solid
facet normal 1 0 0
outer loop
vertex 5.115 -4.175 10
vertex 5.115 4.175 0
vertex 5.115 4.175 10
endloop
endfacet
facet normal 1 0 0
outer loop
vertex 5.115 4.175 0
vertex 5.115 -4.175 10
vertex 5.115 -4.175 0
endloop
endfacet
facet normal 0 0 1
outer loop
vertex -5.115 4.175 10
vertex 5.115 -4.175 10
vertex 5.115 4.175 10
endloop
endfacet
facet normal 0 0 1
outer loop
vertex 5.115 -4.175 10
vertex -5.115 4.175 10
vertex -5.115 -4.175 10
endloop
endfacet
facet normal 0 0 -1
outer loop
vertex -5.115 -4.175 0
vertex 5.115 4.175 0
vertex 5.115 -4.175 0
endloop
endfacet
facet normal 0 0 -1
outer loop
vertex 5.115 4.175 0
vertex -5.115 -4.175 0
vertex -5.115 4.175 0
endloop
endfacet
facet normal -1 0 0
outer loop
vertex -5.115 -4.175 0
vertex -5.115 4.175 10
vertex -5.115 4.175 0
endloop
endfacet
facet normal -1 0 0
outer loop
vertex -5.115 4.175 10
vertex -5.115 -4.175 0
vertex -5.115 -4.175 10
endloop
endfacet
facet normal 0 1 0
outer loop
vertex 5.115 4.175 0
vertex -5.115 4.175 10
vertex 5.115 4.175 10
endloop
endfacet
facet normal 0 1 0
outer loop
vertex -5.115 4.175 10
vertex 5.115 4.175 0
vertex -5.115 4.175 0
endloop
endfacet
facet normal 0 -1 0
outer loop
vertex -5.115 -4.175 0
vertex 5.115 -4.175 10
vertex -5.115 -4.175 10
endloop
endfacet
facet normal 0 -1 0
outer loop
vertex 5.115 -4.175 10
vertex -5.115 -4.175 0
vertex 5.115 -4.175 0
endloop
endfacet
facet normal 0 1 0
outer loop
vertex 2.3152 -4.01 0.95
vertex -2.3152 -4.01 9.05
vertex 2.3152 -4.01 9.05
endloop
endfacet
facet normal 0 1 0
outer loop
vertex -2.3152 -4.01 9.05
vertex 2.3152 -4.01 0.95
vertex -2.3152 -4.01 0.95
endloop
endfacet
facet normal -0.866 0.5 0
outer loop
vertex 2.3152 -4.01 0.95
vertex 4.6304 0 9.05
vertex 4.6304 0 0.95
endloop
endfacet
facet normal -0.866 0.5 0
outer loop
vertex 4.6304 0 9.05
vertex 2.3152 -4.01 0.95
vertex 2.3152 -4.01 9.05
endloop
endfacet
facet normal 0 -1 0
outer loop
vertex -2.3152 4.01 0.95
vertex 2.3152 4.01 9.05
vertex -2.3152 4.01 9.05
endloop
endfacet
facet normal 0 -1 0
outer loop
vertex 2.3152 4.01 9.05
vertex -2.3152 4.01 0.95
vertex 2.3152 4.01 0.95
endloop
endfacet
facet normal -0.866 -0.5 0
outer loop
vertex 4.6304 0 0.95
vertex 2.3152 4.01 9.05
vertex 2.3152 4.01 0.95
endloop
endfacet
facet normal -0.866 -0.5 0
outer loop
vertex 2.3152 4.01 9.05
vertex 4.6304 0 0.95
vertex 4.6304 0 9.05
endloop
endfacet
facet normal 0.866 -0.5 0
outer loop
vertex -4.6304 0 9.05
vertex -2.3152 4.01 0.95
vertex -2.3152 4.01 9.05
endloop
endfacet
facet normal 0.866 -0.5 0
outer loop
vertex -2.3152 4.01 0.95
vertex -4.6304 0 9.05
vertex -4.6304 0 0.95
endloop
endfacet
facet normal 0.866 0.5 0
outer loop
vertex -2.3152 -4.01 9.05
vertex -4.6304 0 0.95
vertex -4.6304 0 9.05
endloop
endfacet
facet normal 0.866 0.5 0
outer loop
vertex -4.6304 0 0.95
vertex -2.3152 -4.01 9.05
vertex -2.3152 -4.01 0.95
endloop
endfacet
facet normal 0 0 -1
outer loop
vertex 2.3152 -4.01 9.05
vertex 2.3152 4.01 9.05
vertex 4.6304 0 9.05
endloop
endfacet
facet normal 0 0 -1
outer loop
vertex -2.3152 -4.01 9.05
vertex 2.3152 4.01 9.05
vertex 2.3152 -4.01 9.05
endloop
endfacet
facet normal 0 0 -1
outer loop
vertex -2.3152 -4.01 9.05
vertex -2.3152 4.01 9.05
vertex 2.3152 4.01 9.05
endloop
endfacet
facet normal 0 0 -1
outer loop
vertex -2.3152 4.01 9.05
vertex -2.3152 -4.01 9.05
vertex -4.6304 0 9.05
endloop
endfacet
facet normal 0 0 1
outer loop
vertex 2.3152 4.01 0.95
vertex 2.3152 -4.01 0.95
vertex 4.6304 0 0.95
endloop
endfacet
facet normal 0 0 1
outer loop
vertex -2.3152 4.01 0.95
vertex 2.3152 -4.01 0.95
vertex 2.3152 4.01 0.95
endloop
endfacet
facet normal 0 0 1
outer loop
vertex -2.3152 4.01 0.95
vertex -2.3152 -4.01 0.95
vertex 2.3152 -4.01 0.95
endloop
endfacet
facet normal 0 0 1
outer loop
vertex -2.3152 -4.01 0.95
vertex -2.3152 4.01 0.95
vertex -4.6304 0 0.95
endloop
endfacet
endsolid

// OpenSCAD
// Please help me make a SCAD model for an adaptor for a special nut.
// The nut is 6 sided with a distance between two sides being 7.82mm.
// The adaptor needs to be a rectangle which is 8.35mm x 10.23mm.
// Each dimensional size needs to be a variable at the top of the scad.

// Hex Nut Adapter
// All dimensions in millimeters

// ===== ADAPTER DIMENSIONS =====
adapter_width = 8.35;      // Short side of rectangle
adapter_length = 10.23;    // Long side of rectangle
adapter_height = 10;       // Height/thickness of adapter (adjust as needed)

// ===== NUT DIMENSIONS =====
nut_flat_to_flat = 7.82;   // Distance between parallel sides of hexagon
nut_depth = 8;             // Depth of hex hole (adjust as needed)

// ===== TOLERANCE =====
tolerance = 0.2;           // Extra clearance for nut (adjust for fit)

// ===== CALCULATED VALUES =====
// For a hexagon, the circumradius (corner-to-corner / 2) is flat_to_flat / (2 * cos(30))
nut_circumdiameter = (nut_flat_to_flat + tolerance) / cos(30);

// ===== MODEL =====
difference() {
    // Outer rectangular body
    translate([0, 0, adapter_height/2])
        cube([adapter_length, adapter_width, adapter_height], center=true);

    // Hexagonal hole for nut
    translate([0, 0, adapter_height/2])
        cylinder(h=nut_depth+0.1, d=nut_circumdiameter, $fn=6, center=true);
}

// ===== NOTES =====
// - The hexagon is oriented with flat sides parallel to the Y-axis
// - To rotate the hex 30 degrees, add: rotate([0, 0, 30])
// - Adjust adapter_height and nut_depth based on your needs
// - Adjust tolerance for a tighter or looser fit
